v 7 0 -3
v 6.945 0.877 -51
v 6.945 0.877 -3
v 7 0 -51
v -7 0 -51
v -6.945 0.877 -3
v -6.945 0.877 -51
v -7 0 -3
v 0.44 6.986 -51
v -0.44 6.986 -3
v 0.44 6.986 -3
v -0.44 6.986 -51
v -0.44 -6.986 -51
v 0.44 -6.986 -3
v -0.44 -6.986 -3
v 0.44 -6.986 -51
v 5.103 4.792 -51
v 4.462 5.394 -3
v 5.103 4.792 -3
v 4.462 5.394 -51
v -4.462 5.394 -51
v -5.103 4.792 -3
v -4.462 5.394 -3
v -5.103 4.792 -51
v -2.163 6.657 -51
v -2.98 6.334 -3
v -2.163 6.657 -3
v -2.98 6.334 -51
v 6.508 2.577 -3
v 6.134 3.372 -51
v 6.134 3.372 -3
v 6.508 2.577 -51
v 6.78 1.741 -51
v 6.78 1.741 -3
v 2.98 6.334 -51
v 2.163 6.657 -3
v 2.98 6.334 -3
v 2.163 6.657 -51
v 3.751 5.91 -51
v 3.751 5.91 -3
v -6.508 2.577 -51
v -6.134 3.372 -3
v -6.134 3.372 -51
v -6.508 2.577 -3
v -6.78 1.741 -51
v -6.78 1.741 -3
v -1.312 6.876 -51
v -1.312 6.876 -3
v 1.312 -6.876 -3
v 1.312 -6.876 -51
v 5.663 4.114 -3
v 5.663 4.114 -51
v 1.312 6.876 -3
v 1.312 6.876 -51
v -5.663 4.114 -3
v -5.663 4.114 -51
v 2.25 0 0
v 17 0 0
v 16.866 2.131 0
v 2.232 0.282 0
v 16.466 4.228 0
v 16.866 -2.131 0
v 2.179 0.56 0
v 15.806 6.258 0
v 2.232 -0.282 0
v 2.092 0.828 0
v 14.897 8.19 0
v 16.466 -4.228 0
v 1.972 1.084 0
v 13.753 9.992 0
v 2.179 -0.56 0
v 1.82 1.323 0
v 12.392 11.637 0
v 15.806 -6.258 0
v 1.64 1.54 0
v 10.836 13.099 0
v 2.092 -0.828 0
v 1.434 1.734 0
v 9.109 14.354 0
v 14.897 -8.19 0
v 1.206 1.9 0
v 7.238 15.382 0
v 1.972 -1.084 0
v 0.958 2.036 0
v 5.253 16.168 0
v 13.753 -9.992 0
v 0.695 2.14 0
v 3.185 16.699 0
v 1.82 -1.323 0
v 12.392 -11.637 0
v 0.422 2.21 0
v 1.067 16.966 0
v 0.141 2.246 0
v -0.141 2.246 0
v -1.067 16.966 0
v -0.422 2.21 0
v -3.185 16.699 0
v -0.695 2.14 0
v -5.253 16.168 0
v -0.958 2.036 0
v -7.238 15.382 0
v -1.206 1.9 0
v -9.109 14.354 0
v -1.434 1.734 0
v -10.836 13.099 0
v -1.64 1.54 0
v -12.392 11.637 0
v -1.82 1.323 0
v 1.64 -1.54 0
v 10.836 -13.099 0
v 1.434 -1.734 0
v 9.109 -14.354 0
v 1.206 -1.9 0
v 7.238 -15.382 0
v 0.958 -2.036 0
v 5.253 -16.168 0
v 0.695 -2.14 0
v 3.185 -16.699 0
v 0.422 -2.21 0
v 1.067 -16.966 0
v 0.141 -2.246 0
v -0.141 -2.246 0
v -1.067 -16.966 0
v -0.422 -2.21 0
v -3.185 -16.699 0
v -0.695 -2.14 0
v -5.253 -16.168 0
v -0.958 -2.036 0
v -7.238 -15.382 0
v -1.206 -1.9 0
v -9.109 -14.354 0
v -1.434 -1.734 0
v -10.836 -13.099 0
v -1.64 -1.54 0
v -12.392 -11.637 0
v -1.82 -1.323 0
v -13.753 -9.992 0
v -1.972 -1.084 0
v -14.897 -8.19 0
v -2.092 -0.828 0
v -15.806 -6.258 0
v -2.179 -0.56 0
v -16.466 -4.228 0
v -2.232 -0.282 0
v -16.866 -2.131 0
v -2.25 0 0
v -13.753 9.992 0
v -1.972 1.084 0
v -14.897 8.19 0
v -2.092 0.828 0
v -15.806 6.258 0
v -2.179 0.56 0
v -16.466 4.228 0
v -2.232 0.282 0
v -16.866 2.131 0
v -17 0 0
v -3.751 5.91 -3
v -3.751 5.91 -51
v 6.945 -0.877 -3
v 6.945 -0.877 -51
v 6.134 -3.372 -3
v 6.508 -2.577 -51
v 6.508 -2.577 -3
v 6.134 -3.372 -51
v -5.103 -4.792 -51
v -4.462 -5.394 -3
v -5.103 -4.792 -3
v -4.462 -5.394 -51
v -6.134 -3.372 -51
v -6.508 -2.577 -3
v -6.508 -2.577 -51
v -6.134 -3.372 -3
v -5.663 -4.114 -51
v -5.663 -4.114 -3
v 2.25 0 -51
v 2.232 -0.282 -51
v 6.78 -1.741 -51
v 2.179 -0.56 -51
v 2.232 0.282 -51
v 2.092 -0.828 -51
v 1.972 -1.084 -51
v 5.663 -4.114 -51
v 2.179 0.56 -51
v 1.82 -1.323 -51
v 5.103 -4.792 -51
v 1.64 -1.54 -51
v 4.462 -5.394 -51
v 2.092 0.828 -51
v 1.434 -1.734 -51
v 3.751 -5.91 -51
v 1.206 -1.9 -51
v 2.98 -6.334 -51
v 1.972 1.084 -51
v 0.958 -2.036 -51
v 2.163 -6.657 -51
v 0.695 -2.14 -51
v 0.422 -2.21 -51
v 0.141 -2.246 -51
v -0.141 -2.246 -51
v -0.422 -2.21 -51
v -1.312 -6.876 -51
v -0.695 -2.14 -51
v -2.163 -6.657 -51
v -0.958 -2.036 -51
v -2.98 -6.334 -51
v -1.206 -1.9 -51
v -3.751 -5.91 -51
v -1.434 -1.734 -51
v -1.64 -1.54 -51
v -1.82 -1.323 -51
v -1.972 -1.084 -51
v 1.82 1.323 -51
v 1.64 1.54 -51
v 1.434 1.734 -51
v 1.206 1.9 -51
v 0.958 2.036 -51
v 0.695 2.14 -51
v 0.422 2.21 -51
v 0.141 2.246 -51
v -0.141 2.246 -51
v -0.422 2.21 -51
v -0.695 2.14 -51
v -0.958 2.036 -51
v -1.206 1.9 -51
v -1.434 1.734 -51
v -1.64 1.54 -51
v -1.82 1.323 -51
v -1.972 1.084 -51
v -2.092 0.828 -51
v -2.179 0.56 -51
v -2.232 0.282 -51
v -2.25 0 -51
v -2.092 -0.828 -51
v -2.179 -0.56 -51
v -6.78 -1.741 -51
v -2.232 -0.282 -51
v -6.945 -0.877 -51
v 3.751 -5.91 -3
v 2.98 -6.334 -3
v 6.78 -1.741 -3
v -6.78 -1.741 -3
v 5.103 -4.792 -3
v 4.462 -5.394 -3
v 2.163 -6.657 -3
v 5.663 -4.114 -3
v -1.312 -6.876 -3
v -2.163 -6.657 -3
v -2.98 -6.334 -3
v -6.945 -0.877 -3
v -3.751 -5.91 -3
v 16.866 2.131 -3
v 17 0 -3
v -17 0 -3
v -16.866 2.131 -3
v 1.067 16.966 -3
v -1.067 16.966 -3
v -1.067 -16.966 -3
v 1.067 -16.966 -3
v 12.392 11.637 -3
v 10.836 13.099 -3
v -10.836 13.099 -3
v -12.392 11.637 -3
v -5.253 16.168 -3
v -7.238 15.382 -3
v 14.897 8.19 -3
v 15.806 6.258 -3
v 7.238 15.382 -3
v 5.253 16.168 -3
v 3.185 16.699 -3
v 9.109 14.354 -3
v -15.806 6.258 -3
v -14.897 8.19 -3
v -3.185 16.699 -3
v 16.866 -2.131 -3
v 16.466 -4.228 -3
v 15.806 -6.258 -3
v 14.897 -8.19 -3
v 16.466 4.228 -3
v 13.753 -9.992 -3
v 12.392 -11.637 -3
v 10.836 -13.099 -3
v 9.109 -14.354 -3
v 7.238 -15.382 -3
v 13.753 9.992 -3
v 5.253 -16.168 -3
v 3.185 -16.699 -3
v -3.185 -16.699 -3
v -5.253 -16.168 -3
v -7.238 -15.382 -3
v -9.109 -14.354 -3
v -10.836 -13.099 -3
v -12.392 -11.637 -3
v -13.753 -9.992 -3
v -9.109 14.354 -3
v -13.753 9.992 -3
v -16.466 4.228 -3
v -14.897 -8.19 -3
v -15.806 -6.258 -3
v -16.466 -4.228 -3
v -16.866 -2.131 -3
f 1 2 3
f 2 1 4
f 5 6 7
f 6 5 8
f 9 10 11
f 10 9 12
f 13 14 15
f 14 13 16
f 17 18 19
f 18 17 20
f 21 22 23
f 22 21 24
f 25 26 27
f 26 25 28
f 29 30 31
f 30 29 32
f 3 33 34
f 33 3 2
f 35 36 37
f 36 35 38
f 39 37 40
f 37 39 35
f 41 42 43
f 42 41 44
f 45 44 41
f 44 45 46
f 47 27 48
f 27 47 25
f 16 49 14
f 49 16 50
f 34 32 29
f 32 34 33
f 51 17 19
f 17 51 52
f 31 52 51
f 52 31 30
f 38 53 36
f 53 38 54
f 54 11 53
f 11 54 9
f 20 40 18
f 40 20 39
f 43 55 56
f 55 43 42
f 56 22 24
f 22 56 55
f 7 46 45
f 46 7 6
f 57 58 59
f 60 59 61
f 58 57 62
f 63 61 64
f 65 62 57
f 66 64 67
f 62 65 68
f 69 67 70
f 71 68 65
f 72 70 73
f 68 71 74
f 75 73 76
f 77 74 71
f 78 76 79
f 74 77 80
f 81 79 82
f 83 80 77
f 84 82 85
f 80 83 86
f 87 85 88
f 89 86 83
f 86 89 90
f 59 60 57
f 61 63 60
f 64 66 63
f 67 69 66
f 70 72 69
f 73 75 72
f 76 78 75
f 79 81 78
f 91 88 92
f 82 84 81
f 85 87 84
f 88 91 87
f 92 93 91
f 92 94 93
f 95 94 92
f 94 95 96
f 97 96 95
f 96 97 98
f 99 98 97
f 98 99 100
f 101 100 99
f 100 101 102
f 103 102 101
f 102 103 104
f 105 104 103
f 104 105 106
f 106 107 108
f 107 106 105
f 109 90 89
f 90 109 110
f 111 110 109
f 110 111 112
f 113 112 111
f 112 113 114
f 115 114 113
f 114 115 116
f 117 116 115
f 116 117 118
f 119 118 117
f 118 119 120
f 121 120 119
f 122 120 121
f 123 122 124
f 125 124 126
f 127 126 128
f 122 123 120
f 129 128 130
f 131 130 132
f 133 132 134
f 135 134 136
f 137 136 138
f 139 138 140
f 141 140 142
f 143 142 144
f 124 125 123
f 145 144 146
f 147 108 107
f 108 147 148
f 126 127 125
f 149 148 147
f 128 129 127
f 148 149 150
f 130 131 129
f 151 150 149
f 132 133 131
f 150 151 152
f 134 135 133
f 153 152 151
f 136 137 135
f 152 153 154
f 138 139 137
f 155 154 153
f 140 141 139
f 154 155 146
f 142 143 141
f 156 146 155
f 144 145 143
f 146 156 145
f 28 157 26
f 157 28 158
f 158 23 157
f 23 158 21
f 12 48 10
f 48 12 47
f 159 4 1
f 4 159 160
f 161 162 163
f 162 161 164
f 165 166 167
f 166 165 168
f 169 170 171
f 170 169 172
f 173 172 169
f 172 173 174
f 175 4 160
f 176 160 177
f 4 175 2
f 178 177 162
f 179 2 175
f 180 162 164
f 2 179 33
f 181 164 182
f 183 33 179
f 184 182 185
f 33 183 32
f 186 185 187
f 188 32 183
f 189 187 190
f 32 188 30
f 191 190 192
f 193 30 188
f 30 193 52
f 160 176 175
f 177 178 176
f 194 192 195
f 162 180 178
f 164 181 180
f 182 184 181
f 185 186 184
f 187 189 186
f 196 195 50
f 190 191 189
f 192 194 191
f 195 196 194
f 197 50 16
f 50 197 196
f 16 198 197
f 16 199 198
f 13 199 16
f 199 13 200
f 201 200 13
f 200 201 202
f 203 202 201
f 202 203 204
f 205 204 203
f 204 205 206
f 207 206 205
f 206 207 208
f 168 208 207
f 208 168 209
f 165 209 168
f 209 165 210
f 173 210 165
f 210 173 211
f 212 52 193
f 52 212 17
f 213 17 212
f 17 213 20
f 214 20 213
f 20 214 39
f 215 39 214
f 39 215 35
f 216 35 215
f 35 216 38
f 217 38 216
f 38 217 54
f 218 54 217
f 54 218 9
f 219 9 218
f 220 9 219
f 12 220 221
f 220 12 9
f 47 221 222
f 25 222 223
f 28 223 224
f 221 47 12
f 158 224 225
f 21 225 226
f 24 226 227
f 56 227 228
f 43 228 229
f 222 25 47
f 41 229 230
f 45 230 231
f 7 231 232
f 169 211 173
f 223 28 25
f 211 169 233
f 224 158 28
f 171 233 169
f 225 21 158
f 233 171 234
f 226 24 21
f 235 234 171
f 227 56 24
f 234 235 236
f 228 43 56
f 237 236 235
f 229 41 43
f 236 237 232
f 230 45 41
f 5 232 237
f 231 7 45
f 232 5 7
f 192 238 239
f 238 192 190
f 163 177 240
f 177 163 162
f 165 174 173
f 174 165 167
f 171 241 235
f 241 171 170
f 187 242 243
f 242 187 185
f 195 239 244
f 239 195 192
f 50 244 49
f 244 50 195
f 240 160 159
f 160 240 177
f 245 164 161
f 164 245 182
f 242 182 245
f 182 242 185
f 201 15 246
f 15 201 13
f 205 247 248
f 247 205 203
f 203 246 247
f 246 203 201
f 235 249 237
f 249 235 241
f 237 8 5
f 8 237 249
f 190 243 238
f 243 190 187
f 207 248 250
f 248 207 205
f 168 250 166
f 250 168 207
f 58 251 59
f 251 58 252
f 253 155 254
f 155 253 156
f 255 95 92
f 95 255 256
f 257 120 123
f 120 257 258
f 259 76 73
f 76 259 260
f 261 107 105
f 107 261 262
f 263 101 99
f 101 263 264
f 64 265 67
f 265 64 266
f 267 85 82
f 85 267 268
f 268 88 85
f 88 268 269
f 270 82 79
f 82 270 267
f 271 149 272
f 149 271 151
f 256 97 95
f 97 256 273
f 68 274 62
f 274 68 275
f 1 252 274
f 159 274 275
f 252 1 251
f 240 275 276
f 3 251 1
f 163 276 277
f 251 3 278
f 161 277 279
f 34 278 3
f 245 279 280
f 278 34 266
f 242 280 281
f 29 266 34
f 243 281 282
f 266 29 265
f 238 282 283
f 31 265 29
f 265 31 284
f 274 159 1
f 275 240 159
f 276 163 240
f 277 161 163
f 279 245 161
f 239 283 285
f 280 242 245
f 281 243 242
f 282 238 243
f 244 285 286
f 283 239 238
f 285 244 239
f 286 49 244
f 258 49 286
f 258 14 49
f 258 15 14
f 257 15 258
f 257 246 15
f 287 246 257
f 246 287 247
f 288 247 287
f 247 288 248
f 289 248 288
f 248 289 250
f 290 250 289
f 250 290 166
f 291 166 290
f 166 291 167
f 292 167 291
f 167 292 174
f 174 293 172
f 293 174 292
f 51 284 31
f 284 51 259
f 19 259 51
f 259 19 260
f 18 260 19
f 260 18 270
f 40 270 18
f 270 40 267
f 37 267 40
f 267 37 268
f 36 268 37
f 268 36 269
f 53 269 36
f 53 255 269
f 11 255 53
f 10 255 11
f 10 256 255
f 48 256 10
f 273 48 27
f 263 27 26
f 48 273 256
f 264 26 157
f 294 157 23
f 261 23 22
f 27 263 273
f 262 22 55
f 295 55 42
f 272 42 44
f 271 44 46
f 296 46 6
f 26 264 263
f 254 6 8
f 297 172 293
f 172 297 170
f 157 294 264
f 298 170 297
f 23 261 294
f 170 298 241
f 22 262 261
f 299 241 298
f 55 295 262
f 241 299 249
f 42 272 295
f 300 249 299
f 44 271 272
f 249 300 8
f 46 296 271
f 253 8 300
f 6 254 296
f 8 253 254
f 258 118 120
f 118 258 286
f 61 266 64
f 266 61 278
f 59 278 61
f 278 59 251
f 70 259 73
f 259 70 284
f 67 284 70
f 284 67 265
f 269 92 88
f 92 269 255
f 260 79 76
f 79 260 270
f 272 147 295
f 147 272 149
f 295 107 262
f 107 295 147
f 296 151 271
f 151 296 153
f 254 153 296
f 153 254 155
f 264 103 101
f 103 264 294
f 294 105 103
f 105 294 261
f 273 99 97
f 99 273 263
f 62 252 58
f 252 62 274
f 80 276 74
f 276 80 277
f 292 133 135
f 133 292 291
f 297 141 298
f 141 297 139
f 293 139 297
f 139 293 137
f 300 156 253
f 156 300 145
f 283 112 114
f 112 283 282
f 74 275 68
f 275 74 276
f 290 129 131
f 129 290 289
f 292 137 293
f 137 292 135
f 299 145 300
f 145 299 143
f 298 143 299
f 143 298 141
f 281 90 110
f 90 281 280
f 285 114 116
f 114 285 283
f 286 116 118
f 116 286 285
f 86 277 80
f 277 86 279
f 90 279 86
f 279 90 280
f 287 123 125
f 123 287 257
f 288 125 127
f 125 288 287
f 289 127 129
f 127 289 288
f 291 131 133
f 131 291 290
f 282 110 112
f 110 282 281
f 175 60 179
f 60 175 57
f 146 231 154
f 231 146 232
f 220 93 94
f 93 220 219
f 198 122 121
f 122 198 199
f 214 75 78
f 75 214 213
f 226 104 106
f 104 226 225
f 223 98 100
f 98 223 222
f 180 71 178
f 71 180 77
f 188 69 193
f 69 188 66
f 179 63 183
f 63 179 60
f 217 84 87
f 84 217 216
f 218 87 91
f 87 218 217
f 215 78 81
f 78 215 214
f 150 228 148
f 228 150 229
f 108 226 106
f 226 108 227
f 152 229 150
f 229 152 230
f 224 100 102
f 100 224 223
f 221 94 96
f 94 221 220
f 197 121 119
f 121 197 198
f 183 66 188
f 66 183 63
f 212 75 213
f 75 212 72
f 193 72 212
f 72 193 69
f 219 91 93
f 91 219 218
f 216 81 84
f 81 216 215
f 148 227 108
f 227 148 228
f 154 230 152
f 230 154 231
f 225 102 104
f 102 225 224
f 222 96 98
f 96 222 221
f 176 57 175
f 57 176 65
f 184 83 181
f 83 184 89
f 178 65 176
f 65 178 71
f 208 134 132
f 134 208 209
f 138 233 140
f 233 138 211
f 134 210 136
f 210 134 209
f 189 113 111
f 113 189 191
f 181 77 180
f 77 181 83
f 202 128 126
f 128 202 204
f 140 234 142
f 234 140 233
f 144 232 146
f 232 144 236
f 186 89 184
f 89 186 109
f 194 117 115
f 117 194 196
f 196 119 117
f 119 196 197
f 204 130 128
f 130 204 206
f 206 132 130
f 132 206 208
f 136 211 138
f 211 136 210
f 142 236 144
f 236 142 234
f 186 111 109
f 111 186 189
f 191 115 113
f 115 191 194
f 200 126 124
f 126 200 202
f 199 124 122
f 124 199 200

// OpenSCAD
$fn = 50;


difference() {
	union() {
		translate(v = [0, 0, -51.0000000000]) {
			cylinder(h = 51, r = 7.0000000000);
		}
		translate(v = [0, 0, -3.0000000000]) {
			cylinder(h = 3, r = 17.0000000000);
		}
	}
	union() {
		#translate(v = [0, 0, -51]) {
			cylinder(h = 51, r = 2.2500000000);
		}
	}
}
